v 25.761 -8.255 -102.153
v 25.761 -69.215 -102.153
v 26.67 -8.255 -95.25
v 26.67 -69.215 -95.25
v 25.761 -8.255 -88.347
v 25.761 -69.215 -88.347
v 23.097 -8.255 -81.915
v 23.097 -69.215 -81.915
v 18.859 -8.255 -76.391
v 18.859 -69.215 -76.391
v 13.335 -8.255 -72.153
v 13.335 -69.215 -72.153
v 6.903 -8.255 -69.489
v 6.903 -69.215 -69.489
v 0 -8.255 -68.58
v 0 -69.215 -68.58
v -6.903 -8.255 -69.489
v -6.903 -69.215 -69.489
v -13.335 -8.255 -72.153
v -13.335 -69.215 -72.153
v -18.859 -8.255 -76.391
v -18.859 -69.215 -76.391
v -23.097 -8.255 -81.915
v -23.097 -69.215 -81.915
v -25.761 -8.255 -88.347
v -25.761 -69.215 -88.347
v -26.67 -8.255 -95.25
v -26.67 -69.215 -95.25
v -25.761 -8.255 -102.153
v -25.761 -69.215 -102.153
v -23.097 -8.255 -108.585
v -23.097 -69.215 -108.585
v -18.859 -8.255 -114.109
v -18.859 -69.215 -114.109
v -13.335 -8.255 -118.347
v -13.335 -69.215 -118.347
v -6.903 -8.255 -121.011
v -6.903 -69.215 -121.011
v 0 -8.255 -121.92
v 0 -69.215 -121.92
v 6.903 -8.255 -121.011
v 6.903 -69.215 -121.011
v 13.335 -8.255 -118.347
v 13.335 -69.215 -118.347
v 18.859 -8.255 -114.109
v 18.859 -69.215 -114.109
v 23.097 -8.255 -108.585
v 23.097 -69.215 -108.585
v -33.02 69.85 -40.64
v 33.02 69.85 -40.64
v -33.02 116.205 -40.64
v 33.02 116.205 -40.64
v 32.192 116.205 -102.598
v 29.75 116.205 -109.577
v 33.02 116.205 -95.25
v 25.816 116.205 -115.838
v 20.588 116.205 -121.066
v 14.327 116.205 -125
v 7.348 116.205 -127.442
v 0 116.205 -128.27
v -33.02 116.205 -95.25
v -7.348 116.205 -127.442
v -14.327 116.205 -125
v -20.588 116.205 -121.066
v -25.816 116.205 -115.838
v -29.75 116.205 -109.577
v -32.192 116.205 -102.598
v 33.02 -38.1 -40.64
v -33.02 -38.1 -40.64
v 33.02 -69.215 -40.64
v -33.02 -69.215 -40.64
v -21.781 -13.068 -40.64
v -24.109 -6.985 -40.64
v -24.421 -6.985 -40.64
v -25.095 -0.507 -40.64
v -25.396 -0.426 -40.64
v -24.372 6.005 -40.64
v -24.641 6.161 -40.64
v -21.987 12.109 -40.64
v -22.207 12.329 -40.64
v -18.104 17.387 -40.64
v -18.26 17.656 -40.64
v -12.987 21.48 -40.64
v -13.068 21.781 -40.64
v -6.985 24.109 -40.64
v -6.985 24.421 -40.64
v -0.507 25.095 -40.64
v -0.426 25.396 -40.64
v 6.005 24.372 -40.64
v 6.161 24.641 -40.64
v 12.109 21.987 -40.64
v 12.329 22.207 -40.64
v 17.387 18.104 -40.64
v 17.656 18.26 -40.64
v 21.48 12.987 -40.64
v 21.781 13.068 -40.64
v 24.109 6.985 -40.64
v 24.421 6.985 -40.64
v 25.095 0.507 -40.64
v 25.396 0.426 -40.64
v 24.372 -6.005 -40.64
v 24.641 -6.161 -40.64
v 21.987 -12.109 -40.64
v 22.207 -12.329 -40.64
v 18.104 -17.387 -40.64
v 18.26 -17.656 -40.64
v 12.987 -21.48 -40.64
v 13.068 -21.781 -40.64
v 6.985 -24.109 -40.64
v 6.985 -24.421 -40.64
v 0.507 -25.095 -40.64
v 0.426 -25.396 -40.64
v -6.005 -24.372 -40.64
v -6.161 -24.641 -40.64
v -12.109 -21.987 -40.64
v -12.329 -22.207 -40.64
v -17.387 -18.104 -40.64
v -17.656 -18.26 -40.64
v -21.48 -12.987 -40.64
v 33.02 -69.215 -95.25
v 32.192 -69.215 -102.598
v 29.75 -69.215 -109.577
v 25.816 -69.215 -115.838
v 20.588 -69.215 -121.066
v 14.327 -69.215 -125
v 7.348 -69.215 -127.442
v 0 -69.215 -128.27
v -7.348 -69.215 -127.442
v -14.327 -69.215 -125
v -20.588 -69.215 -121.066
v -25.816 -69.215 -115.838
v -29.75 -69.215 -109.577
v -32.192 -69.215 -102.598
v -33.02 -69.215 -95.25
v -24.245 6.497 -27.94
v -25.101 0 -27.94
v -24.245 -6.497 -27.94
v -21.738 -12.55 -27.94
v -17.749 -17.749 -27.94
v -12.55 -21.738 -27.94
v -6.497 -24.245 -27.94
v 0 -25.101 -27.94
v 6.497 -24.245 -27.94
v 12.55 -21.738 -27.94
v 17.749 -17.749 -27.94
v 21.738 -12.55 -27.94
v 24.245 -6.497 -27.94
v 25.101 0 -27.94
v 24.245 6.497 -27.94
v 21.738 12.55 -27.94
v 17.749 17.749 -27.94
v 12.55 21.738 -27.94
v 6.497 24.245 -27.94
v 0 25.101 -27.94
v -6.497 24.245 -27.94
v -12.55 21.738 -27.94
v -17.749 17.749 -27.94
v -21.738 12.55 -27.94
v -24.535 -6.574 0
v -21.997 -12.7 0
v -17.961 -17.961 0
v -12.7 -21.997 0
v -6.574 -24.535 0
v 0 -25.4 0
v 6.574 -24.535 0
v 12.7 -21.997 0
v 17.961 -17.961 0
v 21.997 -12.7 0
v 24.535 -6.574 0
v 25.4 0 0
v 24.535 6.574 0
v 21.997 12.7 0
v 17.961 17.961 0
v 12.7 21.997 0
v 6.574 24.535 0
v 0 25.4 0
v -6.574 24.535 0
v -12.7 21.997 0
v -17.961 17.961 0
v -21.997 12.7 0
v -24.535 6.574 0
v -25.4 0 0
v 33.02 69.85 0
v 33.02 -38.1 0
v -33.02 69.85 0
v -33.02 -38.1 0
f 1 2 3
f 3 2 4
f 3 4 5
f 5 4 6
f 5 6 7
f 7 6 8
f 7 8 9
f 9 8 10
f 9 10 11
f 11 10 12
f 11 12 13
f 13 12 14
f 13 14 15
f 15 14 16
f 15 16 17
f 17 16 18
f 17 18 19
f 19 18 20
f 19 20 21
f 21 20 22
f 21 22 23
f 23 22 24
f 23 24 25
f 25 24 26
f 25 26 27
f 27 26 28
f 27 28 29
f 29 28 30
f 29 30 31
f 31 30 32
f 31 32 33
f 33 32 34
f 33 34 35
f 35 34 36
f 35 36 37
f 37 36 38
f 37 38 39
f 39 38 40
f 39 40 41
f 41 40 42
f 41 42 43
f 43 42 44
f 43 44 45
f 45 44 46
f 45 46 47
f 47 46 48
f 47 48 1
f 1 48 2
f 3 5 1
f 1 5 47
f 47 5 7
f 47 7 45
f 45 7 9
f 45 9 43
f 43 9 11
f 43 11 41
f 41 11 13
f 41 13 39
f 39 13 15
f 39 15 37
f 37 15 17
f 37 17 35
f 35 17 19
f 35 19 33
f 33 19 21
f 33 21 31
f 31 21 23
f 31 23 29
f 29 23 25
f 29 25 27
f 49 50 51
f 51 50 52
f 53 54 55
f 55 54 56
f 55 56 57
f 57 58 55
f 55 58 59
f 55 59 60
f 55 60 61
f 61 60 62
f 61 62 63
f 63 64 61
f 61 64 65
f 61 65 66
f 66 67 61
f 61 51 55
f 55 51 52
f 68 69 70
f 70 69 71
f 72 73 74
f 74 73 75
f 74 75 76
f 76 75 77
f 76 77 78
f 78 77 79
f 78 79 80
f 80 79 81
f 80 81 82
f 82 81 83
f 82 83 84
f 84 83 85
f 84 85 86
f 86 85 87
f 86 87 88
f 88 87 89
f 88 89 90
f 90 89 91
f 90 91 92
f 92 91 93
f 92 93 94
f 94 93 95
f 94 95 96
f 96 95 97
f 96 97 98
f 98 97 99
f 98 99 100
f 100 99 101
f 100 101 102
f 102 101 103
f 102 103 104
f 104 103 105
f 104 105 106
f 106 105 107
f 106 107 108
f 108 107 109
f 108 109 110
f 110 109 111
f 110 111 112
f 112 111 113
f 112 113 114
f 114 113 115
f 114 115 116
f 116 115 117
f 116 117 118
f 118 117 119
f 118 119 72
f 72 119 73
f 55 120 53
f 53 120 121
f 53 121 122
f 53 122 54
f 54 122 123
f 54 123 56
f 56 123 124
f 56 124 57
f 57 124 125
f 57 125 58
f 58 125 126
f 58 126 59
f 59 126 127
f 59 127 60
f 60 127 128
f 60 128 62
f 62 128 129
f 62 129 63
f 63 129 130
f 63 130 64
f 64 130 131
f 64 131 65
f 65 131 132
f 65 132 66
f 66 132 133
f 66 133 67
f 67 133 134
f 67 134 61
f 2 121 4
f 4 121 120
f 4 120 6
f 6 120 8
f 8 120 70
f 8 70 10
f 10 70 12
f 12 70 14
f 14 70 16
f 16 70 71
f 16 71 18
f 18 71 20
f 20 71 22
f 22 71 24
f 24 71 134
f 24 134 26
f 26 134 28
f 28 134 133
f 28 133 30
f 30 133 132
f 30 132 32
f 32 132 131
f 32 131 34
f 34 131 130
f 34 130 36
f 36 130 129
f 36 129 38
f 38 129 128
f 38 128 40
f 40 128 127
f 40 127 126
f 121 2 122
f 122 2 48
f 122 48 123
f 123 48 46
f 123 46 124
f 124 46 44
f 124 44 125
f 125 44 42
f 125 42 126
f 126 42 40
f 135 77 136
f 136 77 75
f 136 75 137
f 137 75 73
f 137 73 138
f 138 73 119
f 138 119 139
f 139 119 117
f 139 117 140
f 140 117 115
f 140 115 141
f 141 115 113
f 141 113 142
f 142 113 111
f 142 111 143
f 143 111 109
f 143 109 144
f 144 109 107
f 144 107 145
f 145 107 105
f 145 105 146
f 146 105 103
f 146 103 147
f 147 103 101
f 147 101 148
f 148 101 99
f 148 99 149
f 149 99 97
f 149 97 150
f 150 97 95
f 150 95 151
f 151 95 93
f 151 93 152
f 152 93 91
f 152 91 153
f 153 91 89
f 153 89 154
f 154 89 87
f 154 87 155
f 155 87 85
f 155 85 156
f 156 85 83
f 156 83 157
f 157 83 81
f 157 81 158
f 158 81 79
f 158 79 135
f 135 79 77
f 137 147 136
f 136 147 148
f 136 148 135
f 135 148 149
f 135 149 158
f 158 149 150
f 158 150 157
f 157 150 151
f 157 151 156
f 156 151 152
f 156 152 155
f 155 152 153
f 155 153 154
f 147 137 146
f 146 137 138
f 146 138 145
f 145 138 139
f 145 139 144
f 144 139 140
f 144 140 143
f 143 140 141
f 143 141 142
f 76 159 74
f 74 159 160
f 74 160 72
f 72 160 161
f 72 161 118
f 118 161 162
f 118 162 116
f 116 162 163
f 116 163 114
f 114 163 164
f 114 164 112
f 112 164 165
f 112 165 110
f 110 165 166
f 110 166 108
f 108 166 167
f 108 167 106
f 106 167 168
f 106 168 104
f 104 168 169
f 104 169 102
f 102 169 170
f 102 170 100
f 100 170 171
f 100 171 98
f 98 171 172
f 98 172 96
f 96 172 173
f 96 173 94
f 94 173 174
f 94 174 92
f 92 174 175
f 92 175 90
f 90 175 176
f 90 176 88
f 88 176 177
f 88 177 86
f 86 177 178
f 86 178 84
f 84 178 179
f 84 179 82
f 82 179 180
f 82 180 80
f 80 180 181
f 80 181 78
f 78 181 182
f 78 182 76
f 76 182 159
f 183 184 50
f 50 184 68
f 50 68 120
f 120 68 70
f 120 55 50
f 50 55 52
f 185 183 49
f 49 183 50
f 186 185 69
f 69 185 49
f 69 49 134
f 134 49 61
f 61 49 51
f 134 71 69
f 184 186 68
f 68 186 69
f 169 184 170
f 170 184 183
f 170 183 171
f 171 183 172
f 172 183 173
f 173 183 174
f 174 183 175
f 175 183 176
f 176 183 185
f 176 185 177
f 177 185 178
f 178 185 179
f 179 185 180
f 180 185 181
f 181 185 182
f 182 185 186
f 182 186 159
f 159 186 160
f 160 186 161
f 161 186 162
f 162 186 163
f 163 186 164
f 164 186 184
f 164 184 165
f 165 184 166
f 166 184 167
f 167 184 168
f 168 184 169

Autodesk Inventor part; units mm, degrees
ref_plane "YZ Plane" through (0, 0, 0) normal (1, 0, 0) x (0, 1, 0)
ref_plane "XZ Plane" through (0, 0, 0) normal (0, 1, 0) x (-1, 0, 0)
ref_plane "XY Plane" through (0, 0, 0) normal (0, 0, 1) x (1, 0, 0)
sketch "Sketch1" plane through (0, 0, 0) normal (0, 0, 1) x (1, 0, 0)
  circle A0 centre (0, 0) radius 25.4
  line L0 (-33.02, -38.1) -> (33.02, -38.1)
  line L1 (33.02, -38.1) -> (33.02, 69.85)
  line L2 (33.02, 69.85) -> (-33.02, 69.85)
  line L3 (-33.02, 69.85) -> (-33.02, -38.1)
  dimension "d0" = 50.8
  dimension "d1" = 66.04
  dimension "d2" = 107.95
  dimension "d3" = 33.02
  dimension "d4" = 38.1
extrude "Extrusion1" add sketch "Sketch1" against normal blind 40.64
sketch "Sketch2" plane through (0, 0, -40.64) normal (0, 0, -1) x (-1, 0, 0)
  circle A0 centre (0, 0) radius 25.1006
extrude "Extrusion2" add sketch "Sketch2" against normal blind 12.7
sketch "Sketch3" plane through (-33.02, -38.1, 0) normal (0, -1, 0) x (1, 0, 0)
  line L0 (0, 0) -> (66.04, 0) projected
  line L1 (66.04, 0) -> (0, 0)
  line L2 (0, 0) -> (0, -95.25)
  line L3 (0, -95.25) -> (66.04, -95.25)
  line L4 (66.04, -95.25) -> (66.04, 0)
  line L5 (66.04, -40.64) -> (0, -40.64)
  arc A0 (0, -95.25) -> (66.04, -95.25) centre (33.02, -95.25) ccw
  line L6 (0, -40.64) -> (66.04, -40.64) projected
  line L7 (0, -40.64) -> (66.04, -40.64)
  line L8 (66.04, -40.64) -> (66.04, -95.25)
  line L9 (66.04, -95.25) -> (0, -95.25)
  line L10 (0, -95.25) -> (0, -40.64)
  point P0 (33.02, 0)
  dimension "d9" = 54.61
extrude "Extrusion3" add sketch "Sketch3" along normal mid plane 62.23 contours L5 L4 L3 L2 | L3 A0
sketch "Sketch4" plane through (-33.02, -38.1, 0) normal (0, -1, 0) x (1, 0, 0)
  point P0 (33.02, 0)
sketch "Sketch5" plane through (-33.02, -6.985, 0) normal (0, 1, 0) x (1, 0, 0)
  arc A0 (66.04, 95.25) -> (0, 95.25) centre (33.02, 95.25) ccw projected
  line L0 (66.04, 40.64) -> (66.04, 95.25) projected
  line L1 (0, 95.25) -> (66.04, 95.25)
  line L2 (66.04, 95.25) -> (66.04, 40.64)
  line L3 (66.04, 40.64) -> (0, 40.64)
  line L4 (0, 40.64) -> (0, 95.25)
  arc A1 (66.04, 95.25) -> (0, 95.25) centre (33.02, 95.25) ccw
  point P0 (33.02, 0)
extrude "Extrusion4" add sketch "Sketch5" along normal blind 123.19
sketch "Sketch6" plane through (-33.02, -69.215, 0) normal (0, -1, 0) x (1, 0, 0)
  arc A0 (0, -95.25) -> (66.04, -95.25) centre (33.02, -95.25) ccw projected
  line L0 (0, -95.25) -> (33.02, -95.25)
  circle A1 centre (33.02, -95.25) radius 26.67
  point P0 (33.02, 0)
  dimension "d16" = 53.34
extrude "Extrusion5" cut sketch "Sketch6" against normal blind 60.96
equation "\"d3\" = 0.5 * d1"
properties part number "Wrist1-lrg"
